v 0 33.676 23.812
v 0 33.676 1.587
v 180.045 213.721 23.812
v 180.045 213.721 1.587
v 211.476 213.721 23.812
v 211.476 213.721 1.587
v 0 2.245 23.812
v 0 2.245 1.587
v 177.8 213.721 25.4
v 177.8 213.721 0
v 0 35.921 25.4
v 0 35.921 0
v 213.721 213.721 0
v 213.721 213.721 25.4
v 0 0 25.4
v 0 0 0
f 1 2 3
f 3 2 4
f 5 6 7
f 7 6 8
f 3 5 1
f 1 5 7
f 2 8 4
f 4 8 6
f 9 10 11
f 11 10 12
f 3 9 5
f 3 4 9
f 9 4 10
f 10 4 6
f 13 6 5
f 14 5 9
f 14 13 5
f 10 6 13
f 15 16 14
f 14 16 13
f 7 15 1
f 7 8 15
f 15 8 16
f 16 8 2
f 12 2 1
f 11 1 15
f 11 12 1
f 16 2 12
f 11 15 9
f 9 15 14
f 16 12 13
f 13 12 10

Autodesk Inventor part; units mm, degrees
ref_plane "YZ Plane" through (0, 0, 0) normal (1, 0, 0) x (0, 1, 0)
ref_plane "XZ Plane" through (0, 0, 0) normal (0, 1, 0) x (-1, 0, 0)
ref_plane "XY Plane" through (0, 0, 0) normal (0, 0, 1) x (1, 0, 0)
sketch "Sketch1" plane through (0, 0, 0) normal (0, 0, 1) x (1, 0, 0)
  line L0 (0, 0) -> (0, 35.921)
  line L1 (0, 35.921) -> (177.8, 213.721)
  line L2 (177.8, 213.721) -> (213.721, 213.721)
  line L3 (213.721, 213.721) -> (0, 0)
  dimension "d0" = 25.4
  dimension "d2" = 177.8
  dimension "d3" = 177.8
extrude "Extrusion1" add sketch "Sketch1" along normal blind 25.4
shell "Shell1" thickness 1.5875 removed faces 2 at (0, 11.9737, 8.4667) at (189.7737, 213.721, 16.9333)
properties part number "Frame_VerticalFrontAngle" material "Aluminum-6061"
